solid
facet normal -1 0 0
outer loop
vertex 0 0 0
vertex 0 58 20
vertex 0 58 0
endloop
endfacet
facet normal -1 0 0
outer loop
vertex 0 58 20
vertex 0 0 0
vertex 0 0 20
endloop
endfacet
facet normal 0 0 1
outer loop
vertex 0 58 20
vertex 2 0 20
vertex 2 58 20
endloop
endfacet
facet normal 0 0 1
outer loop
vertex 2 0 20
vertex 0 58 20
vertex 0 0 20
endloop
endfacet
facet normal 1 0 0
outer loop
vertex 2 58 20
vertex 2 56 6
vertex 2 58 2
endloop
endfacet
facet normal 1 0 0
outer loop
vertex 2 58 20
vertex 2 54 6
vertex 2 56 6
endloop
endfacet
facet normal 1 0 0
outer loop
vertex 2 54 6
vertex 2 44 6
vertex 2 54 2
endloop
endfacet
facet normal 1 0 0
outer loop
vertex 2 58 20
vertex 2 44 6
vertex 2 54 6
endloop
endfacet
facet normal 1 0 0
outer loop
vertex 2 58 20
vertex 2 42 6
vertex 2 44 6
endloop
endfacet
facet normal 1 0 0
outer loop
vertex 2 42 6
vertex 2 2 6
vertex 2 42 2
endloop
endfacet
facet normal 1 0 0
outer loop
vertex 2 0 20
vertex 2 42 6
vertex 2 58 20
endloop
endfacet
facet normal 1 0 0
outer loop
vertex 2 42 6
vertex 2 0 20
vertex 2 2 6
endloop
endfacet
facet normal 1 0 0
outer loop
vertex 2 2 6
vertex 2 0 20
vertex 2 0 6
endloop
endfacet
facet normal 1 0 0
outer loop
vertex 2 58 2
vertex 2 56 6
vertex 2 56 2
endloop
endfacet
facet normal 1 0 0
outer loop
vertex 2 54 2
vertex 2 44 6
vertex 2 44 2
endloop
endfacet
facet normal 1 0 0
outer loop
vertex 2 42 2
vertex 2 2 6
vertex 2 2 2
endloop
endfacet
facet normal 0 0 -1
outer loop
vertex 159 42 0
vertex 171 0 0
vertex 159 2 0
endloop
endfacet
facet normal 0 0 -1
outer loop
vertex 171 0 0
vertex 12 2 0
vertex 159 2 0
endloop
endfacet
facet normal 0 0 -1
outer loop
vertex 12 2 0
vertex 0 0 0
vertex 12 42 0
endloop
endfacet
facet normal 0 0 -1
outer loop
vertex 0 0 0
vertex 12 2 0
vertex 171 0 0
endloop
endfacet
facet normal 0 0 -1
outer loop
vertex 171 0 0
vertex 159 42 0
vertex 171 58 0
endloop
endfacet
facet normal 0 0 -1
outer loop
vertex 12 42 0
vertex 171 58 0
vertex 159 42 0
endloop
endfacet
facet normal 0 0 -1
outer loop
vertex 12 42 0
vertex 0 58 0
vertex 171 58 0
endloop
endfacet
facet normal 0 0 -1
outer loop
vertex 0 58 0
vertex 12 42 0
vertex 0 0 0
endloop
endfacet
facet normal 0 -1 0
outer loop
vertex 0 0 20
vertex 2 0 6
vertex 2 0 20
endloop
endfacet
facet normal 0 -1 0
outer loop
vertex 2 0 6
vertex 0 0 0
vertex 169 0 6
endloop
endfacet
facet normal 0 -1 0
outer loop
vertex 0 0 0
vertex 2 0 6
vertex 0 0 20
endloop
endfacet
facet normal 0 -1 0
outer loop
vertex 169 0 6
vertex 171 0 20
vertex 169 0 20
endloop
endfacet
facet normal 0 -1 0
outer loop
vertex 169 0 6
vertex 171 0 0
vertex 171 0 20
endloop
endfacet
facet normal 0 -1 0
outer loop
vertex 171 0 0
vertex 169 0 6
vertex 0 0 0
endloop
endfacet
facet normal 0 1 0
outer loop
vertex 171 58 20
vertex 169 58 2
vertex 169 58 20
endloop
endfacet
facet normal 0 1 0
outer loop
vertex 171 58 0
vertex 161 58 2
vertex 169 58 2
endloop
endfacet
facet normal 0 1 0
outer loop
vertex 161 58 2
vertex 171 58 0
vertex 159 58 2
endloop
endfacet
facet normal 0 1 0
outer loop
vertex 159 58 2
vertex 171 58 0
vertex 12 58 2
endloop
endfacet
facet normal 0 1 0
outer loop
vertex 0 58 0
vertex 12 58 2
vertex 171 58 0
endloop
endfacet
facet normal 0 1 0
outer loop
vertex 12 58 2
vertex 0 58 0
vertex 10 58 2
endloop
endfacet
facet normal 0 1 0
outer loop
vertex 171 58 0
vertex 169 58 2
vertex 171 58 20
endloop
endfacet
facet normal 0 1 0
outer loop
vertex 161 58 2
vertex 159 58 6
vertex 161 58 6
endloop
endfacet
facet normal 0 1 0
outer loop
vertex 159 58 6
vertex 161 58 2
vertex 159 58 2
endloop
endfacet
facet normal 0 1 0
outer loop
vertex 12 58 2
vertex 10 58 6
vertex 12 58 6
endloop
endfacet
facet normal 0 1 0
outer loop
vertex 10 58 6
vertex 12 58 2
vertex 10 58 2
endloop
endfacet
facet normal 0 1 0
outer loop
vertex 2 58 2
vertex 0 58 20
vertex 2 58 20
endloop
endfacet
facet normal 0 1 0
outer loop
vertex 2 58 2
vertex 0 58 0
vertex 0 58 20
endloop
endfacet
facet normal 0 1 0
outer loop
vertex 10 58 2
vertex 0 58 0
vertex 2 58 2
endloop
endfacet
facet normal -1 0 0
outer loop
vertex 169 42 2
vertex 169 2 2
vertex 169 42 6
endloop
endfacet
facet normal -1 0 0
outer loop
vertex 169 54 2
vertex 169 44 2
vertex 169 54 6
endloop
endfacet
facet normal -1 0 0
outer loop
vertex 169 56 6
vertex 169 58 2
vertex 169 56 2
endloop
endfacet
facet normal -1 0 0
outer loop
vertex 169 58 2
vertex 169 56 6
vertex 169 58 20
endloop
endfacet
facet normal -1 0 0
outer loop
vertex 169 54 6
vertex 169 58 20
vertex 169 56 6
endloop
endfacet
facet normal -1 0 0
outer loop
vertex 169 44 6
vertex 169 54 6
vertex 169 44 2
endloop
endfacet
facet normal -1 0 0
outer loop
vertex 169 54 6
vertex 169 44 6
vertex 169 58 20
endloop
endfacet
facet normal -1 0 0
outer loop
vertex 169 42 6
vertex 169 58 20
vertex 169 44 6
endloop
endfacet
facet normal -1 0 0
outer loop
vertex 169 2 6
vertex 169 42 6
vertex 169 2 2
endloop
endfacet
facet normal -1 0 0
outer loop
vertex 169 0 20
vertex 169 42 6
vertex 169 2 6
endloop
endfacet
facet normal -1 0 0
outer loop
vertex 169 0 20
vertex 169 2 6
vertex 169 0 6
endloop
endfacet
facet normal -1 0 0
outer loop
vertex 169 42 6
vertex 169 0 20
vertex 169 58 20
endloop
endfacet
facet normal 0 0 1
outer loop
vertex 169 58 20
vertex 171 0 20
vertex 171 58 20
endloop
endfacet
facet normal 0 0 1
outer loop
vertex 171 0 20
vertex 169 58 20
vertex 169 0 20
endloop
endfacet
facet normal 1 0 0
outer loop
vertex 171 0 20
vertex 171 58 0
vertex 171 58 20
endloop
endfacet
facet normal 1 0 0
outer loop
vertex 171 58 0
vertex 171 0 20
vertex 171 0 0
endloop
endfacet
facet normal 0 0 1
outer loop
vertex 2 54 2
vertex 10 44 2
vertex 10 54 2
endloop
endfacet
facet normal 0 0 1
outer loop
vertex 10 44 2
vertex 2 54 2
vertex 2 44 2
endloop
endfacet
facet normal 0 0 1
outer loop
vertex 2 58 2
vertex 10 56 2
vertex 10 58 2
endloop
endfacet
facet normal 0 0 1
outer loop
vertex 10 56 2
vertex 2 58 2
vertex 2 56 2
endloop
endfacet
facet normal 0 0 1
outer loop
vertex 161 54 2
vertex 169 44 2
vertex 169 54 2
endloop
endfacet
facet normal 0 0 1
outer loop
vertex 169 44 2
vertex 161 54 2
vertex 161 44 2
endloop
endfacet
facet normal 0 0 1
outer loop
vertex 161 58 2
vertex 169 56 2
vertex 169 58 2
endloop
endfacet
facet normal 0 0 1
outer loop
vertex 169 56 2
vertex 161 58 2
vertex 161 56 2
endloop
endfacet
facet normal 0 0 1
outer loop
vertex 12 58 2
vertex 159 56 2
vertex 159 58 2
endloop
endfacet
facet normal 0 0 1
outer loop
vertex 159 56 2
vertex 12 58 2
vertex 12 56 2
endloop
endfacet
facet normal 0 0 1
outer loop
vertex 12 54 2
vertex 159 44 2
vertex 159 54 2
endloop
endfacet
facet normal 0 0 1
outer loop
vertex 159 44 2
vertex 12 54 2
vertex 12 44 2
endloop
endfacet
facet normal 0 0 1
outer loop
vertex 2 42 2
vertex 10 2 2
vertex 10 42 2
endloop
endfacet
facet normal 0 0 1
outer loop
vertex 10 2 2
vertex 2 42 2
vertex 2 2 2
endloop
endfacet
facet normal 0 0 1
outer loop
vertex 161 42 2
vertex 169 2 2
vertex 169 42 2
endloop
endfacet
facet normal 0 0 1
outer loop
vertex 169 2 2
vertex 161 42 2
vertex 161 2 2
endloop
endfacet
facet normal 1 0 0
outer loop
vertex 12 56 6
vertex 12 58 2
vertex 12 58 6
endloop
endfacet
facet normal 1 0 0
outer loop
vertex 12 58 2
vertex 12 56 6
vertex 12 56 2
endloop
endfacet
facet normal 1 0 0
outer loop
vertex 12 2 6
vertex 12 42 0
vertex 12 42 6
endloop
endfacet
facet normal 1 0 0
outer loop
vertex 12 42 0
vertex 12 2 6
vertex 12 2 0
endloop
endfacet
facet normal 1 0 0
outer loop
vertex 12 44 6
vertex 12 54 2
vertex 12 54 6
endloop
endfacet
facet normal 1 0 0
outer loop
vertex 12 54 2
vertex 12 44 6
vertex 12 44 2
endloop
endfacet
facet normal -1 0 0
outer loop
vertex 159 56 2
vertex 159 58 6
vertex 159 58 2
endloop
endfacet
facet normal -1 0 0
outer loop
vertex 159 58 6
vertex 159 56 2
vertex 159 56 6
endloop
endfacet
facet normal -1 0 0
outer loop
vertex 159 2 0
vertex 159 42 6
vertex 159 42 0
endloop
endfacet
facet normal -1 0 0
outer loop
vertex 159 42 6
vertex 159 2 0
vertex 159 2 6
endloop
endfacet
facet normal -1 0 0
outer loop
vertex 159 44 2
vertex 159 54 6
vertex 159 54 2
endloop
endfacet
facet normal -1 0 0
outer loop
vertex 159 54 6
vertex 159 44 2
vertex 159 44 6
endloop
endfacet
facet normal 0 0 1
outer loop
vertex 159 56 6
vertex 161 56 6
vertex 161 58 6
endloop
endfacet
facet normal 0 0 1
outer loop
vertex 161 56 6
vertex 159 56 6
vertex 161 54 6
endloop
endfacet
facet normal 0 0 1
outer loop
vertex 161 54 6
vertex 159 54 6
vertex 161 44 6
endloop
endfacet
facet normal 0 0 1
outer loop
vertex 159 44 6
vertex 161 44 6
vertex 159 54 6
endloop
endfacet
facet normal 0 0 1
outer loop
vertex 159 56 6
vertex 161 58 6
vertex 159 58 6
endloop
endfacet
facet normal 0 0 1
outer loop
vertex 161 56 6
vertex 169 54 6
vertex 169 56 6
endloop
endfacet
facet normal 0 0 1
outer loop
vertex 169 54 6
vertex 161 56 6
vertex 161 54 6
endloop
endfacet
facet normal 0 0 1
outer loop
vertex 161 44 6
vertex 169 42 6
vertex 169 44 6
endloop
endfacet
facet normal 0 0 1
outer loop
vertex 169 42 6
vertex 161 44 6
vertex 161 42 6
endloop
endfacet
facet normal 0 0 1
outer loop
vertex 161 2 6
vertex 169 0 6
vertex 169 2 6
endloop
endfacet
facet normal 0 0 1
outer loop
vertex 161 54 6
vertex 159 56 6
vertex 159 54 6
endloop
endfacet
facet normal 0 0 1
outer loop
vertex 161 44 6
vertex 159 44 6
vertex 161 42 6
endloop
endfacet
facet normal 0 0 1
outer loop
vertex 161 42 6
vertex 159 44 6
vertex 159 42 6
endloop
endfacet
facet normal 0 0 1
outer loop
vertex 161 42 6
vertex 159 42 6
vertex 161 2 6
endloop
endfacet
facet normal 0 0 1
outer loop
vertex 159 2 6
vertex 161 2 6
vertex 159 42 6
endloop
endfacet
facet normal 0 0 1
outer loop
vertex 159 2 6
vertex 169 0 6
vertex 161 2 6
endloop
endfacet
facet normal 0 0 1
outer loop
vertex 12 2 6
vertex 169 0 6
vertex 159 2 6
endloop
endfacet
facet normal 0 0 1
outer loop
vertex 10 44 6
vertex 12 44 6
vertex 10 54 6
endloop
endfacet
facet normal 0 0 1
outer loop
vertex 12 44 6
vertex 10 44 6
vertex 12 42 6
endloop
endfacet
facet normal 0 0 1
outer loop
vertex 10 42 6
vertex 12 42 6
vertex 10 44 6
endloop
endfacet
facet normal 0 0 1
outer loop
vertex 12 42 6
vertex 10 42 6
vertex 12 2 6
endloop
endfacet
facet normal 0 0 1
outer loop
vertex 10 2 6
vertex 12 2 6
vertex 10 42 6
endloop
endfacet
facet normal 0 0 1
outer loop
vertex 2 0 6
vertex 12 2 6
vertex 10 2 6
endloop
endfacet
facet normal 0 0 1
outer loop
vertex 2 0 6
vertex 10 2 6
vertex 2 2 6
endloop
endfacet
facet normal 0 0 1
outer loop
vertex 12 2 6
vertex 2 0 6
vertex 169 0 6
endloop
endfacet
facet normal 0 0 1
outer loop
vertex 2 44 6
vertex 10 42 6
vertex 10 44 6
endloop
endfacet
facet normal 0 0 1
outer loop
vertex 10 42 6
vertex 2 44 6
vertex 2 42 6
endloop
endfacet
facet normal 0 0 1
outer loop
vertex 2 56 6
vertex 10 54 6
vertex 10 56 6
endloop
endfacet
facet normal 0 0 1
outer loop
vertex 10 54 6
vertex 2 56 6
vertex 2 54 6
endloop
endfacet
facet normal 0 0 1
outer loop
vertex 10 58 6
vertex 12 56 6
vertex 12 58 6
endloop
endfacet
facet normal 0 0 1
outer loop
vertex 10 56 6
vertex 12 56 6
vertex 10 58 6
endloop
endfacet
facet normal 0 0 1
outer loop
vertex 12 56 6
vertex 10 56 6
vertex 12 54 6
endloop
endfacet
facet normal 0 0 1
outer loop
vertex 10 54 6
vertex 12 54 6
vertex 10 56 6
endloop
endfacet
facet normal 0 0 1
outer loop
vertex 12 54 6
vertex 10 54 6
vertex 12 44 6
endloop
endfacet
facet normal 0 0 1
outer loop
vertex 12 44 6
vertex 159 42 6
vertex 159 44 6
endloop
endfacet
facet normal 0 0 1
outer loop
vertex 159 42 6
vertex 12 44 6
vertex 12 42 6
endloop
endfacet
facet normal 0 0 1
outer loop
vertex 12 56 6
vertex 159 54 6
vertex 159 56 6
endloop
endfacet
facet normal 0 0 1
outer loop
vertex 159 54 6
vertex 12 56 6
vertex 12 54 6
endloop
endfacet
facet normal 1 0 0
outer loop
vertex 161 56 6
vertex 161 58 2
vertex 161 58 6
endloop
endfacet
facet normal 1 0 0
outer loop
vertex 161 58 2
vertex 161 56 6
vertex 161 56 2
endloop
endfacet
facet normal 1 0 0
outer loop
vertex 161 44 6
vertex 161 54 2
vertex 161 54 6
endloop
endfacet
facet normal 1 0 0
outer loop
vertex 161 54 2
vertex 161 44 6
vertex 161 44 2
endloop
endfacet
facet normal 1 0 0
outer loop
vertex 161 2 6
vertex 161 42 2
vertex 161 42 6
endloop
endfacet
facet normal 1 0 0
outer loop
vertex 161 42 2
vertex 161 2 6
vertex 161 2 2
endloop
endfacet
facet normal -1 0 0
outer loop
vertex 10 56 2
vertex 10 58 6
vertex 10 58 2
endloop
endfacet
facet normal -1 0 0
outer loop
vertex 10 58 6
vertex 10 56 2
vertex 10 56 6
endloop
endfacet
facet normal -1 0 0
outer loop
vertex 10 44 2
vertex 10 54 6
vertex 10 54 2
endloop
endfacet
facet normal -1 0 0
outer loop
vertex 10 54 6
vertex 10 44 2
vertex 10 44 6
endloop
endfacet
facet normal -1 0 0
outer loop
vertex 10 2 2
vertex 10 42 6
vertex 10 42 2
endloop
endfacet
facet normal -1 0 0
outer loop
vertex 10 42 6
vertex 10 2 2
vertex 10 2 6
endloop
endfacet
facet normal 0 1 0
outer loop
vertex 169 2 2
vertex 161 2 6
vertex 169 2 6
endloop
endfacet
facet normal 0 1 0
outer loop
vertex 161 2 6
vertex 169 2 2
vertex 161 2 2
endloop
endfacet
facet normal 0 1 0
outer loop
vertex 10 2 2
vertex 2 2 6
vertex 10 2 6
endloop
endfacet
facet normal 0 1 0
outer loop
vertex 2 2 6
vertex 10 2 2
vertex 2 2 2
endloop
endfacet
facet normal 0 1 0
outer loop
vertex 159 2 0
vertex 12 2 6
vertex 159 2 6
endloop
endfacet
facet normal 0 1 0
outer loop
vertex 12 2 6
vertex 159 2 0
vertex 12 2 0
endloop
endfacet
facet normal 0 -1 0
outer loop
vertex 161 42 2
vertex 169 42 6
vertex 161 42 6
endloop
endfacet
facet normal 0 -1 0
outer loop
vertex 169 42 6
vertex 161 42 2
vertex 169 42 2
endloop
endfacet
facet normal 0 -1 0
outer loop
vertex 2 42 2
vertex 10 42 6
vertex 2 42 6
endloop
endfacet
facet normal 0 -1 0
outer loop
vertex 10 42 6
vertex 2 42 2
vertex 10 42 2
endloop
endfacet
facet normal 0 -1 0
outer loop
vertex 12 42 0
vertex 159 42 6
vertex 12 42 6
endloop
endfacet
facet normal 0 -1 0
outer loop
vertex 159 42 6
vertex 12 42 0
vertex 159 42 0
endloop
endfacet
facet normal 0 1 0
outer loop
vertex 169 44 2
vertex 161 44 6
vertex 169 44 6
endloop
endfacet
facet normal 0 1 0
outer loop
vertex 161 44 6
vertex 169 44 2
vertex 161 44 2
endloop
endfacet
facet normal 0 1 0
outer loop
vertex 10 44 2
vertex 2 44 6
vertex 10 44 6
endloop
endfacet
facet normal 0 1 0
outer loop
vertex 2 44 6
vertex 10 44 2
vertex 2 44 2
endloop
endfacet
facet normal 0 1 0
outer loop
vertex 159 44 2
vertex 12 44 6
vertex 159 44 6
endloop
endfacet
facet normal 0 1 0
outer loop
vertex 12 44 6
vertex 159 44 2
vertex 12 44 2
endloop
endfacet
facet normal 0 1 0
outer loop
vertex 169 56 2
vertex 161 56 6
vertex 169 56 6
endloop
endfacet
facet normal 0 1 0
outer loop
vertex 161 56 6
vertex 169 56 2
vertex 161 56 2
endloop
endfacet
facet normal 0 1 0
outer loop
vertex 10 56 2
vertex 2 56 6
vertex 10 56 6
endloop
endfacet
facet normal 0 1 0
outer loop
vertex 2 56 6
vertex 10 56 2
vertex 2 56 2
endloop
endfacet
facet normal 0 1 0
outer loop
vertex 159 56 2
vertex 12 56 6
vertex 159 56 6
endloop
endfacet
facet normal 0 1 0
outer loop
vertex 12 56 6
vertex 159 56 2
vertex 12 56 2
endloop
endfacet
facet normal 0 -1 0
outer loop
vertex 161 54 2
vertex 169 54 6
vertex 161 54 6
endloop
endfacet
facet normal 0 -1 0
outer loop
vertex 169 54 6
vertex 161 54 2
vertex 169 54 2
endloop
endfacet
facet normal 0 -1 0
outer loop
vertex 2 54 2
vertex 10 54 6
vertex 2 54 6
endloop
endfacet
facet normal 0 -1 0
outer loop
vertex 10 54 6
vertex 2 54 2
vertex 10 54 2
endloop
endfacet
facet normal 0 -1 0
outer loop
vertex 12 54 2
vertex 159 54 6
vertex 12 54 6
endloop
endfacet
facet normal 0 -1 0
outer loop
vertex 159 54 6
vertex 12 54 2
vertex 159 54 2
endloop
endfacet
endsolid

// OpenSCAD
//Front panel for Mac Quadra 950 with CD Rom attached
//		cube([171,58,20]);

module q950bay()
{
	cube([2,58,20]);
	translate([169,0,0])
		cube([2,58,20]);
	cube([12,58,2]);
	translate([159,0,0])
		cube([12,58,2]);
	translate([159,0,0])
		cube([2,58,6]);
	translate([10,0,0])
		cube([2,58,6]);
	translate([2,0,0])
		cube([167,2,6]);
	translate([2,42,0])
		cube([167,2,6]);
	translate([0,42,0])
		cube([171,16,2]);

	translate([2,54,0])
		cube([167,2,6]);
	translate([2,42,0])
		cube([147,16,2]);
	translate([12,42,0])
		cube([147,16,2]);
	translate([12,42,0])
		cube([147,16,2]);
	translate([12,42,0])
		cube([147,16,2]);
}

q950bay();
